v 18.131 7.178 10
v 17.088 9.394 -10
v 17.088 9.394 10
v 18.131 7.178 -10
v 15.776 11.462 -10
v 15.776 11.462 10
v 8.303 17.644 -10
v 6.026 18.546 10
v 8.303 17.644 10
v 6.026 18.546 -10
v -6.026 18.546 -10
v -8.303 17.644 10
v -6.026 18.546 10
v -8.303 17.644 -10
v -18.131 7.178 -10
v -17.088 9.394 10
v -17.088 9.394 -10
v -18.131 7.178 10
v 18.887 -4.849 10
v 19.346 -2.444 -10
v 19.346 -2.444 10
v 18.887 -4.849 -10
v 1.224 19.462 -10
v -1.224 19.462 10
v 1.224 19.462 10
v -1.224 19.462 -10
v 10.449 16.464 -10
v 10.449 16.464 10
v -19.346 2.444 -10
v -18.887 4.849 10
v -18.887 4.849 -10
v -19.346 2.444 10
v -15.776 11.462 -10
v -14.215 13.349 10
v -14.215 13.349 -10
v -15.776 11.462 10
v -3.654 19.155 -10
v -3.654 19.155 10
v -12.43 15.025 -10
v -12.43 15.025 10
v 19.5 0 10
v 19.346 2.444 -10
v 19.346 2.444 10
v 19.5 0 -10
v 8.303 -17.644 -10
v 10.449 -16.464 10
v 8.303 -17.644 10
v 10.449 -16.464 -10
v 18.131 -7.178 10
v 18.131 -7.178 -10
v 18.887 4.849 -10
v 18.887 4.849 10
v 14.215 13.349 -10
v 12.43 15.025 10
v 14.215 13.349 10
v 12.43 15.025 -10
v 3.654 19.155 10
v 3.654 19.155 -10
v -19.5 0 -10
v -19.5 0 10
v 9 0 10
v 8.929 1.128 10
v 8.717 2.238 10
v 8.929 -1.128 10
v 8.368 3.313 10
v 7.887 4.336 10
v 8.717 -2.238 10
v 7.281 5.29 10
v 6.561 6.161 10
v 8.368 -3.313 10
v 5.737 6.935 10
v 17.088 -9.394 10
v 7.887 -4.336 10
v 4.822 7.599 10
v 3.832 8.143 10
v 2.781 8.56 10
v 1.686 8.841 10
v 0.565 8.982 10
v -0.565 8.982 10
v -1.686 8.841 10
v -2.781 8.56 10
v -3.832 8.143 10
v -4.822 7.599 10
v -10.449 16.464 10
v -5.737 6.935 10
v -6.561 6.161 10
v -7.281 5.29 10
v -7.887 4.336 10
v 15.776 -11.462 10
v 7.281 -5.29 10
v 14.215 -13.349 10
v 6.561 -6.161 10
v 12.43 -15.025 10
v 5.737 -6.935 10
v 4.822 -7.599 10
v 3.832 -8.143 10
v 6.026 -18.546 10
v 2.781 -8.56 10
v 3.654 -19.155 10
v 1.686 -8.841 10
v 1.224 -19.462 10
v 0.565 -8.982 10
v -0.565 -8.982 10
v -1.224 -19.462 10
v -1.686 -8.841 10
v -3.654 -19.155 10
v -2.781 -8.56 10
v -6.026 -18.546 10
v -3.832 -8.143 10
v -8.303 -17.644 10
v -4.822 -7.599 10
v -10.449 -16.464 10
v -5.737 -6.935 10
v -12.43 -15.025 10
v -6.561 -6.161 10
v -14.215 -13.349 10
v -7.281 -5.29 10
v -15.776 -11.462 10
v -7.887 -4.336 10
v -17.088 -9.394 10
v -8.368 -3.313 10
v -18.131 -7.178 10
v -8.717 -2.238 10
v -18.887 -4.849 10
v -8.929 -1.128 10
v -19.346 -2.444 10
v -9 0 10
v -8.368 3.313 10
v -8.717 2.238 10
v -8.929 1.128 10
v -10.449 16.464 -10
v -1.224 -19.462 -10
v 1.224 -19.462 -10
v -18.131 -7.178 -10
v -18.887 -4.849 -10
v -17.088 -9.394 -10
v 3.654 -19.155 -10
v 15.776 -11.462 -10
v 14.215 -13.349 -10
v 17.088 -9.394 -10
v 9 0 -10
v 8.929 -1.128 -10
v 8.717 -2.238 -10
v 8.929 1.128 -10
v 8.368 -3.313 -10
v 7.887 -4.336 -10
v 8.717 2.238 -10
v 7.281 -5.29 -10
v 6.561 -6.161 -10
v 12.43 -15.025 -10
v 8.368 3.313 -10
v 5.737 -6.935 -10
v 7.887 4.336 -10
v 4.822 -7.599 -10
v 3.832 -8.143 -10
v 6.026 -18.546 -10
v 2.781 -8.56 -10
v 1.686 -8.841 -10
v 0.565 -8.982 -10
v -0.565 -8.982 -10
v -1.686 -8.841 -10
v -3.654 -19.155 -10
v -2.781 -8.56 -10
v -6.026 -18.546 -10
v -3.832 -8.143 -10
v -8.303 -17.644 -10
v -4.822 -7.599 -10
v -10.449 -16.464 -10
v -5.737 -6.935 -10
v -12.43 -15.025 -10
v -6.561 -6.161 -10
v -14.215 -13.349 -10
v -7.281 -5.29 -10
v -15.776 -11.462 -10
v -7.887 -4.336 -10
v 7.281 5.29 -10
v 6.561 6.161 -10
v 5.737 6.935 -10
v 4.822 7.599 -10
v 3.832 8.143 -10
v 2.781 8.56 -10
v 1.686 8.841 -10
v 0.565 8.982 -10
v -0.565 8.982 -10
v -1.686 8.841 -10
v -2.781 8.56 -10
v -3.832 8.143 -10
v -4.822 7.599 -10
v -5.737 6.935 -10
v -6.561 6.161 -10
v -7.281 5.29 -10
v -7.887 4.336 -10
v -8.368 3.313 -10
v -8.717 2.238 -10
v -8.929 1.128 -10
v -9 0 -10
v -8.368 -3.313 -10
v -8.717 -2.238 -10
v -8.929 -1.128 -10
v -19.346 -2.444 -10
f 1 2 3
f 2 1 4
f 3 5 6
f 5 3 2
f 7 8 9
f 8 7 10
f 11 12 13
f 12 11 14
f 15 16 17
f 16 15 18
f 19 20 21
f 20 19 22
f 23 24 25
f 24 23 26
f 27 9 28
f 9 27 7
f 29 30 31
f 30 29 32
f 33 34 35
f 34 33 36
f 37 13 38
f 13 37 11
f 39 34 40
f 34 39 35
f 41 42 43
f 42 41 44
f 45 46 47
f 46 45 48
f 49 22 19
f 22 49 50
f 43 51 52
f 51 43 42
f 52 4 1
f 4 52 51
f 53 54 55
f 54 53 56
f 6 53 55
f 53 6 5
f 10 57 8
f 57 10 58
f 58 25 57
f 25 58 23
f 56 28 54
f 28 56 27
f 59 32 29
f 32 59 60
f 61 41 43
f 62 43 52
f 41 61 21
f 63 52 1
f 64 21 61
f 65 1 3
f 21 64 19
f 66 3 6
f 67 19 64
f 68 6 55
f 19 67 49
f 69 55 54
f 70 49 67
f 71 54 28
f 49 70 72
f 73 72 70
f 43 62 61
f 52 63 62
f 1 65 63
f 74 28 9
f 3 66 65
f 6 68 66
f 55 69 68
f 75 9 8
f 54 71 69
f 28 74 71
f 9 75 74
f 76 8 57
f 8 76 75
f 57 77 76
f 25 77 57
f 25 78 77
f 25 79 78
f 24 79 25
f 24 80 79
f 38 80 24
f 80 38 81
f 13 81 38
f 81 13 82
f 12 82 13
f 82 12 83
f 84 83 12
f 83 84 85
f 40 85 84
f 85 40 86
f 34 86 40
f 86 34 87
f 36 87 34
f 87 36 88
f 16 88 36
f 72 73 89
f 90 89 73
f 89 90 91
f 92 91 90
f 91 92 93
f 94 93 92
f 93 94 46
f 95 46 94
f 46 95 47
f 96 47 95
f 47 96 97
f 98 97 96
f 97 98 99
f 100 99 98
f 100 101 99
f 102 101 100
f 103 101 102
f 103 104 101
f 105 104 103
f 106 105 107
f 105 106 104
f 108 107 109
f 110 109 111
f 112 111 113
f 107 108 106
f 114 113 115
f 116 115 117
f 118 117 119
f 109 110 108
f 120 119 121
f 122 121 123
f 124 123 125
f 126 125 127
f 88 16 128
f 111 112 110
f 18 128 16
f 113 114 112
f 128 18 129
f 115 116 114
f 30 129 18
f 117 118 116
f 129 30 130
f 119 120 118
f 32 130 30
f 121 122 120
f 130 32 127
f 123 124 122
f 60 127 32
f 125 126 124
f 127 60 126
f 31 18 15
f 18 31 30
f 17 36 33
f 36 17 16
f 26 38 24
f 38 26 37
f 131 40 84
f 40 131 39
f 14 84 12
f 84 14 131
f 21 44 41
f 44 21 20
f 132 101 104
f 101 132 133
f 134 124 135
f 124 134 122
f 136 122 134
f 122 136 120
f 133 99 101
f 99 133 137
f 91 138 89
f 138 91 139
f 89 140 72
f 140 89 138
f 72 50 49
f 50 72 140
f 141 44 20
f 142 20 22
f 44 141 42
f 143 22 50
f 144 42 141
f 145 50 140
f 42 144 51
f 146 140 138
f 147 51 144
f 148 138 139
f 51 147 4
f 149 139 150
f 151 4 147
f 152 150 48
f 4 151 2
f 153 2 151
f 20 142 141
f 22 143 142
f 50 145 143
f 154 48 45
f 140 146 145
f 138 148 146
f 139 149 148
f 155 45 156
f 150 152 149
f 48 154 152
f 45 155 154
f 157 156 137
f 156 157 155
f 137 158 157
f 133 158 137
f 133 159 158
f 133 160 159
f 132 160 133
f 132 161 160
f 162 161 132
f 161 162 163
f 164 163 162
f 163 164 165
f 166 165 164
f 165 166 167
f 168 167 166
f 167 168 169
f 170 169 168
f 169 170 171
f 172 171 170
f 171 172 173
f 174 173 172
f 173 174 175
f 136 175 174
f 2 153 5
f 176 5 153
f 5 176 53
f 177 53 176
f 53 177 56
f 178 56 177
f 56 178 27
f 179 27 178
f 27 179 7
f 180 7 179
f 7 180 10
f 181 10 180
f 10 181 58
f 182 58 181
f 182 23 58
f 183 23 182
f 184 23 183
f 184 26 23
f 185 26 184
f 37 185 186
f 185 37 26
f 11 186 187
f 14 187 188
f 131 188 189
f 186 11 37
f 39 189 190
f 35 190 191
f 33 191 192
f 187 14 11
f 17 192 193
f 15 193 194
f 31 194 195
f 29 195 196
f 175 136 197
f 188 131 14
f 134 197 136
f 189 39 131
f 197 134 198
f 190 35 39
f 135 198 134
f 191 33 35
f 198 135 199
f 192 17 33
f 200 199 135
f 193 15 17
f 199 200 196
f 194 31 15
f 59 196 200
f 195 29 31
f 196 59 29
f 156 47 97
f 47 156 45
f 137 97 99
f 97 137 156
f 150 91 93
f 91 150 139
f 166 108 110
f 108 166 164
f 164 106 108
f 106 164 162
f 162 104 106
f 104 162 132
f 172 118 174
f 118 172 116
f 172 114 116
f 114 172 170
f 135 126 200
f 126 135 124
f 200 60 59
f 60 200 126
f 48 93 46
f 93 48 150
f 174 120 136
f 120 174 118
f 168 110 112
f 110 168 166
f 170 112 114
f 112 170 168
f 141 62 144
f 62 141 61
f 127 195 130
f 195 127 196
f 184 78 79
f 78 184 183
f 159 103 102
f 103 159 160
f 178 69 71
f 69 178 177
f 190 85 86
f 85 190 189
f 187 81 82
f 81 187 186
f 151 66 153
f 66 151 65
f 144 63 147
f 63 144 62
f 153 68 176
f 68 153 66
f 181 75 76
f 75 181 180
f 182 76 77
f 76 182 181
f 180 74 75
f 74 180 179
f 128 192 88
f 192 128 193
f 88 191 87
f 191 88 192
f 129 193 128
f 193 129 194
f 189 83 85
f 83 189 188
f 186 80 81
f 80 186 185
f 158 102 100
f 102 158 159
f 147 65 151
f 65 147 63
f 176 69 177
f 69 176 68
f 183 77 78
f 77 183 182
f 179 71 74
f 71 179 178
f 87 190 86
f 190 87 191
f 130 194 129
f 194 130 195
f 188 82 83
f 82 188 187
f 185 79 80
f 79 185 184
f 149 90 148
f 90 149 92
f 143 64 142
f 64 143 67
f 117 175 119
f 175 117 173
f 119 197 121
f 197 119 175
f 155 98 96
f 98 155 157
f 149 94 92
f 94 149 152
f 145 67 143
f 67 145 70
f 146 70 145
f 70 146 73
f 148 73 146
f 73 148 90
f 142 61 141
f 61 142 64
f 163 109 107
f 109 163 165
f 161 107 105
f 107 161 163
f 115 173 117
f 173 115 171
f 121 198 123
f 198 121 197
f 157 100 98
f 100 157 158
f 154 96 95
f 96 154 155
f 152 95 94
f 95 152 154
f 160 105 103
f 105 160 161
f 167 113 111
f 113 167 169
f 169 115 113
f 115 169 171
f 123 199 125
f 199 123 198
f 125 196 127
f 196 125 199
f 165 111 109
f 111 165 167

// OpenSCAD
$fn = 50;


difference() {
	union() {
		translate(v = [0, 0, -10.0000000000]) {
			cylinder(h = 20, r = 19.5000000000);
		}
	}
	union() {
		translate(v = [0, 0, -100.0000000000]) {
			cylinder(h = 200, r = 9);
		}
	}
}
